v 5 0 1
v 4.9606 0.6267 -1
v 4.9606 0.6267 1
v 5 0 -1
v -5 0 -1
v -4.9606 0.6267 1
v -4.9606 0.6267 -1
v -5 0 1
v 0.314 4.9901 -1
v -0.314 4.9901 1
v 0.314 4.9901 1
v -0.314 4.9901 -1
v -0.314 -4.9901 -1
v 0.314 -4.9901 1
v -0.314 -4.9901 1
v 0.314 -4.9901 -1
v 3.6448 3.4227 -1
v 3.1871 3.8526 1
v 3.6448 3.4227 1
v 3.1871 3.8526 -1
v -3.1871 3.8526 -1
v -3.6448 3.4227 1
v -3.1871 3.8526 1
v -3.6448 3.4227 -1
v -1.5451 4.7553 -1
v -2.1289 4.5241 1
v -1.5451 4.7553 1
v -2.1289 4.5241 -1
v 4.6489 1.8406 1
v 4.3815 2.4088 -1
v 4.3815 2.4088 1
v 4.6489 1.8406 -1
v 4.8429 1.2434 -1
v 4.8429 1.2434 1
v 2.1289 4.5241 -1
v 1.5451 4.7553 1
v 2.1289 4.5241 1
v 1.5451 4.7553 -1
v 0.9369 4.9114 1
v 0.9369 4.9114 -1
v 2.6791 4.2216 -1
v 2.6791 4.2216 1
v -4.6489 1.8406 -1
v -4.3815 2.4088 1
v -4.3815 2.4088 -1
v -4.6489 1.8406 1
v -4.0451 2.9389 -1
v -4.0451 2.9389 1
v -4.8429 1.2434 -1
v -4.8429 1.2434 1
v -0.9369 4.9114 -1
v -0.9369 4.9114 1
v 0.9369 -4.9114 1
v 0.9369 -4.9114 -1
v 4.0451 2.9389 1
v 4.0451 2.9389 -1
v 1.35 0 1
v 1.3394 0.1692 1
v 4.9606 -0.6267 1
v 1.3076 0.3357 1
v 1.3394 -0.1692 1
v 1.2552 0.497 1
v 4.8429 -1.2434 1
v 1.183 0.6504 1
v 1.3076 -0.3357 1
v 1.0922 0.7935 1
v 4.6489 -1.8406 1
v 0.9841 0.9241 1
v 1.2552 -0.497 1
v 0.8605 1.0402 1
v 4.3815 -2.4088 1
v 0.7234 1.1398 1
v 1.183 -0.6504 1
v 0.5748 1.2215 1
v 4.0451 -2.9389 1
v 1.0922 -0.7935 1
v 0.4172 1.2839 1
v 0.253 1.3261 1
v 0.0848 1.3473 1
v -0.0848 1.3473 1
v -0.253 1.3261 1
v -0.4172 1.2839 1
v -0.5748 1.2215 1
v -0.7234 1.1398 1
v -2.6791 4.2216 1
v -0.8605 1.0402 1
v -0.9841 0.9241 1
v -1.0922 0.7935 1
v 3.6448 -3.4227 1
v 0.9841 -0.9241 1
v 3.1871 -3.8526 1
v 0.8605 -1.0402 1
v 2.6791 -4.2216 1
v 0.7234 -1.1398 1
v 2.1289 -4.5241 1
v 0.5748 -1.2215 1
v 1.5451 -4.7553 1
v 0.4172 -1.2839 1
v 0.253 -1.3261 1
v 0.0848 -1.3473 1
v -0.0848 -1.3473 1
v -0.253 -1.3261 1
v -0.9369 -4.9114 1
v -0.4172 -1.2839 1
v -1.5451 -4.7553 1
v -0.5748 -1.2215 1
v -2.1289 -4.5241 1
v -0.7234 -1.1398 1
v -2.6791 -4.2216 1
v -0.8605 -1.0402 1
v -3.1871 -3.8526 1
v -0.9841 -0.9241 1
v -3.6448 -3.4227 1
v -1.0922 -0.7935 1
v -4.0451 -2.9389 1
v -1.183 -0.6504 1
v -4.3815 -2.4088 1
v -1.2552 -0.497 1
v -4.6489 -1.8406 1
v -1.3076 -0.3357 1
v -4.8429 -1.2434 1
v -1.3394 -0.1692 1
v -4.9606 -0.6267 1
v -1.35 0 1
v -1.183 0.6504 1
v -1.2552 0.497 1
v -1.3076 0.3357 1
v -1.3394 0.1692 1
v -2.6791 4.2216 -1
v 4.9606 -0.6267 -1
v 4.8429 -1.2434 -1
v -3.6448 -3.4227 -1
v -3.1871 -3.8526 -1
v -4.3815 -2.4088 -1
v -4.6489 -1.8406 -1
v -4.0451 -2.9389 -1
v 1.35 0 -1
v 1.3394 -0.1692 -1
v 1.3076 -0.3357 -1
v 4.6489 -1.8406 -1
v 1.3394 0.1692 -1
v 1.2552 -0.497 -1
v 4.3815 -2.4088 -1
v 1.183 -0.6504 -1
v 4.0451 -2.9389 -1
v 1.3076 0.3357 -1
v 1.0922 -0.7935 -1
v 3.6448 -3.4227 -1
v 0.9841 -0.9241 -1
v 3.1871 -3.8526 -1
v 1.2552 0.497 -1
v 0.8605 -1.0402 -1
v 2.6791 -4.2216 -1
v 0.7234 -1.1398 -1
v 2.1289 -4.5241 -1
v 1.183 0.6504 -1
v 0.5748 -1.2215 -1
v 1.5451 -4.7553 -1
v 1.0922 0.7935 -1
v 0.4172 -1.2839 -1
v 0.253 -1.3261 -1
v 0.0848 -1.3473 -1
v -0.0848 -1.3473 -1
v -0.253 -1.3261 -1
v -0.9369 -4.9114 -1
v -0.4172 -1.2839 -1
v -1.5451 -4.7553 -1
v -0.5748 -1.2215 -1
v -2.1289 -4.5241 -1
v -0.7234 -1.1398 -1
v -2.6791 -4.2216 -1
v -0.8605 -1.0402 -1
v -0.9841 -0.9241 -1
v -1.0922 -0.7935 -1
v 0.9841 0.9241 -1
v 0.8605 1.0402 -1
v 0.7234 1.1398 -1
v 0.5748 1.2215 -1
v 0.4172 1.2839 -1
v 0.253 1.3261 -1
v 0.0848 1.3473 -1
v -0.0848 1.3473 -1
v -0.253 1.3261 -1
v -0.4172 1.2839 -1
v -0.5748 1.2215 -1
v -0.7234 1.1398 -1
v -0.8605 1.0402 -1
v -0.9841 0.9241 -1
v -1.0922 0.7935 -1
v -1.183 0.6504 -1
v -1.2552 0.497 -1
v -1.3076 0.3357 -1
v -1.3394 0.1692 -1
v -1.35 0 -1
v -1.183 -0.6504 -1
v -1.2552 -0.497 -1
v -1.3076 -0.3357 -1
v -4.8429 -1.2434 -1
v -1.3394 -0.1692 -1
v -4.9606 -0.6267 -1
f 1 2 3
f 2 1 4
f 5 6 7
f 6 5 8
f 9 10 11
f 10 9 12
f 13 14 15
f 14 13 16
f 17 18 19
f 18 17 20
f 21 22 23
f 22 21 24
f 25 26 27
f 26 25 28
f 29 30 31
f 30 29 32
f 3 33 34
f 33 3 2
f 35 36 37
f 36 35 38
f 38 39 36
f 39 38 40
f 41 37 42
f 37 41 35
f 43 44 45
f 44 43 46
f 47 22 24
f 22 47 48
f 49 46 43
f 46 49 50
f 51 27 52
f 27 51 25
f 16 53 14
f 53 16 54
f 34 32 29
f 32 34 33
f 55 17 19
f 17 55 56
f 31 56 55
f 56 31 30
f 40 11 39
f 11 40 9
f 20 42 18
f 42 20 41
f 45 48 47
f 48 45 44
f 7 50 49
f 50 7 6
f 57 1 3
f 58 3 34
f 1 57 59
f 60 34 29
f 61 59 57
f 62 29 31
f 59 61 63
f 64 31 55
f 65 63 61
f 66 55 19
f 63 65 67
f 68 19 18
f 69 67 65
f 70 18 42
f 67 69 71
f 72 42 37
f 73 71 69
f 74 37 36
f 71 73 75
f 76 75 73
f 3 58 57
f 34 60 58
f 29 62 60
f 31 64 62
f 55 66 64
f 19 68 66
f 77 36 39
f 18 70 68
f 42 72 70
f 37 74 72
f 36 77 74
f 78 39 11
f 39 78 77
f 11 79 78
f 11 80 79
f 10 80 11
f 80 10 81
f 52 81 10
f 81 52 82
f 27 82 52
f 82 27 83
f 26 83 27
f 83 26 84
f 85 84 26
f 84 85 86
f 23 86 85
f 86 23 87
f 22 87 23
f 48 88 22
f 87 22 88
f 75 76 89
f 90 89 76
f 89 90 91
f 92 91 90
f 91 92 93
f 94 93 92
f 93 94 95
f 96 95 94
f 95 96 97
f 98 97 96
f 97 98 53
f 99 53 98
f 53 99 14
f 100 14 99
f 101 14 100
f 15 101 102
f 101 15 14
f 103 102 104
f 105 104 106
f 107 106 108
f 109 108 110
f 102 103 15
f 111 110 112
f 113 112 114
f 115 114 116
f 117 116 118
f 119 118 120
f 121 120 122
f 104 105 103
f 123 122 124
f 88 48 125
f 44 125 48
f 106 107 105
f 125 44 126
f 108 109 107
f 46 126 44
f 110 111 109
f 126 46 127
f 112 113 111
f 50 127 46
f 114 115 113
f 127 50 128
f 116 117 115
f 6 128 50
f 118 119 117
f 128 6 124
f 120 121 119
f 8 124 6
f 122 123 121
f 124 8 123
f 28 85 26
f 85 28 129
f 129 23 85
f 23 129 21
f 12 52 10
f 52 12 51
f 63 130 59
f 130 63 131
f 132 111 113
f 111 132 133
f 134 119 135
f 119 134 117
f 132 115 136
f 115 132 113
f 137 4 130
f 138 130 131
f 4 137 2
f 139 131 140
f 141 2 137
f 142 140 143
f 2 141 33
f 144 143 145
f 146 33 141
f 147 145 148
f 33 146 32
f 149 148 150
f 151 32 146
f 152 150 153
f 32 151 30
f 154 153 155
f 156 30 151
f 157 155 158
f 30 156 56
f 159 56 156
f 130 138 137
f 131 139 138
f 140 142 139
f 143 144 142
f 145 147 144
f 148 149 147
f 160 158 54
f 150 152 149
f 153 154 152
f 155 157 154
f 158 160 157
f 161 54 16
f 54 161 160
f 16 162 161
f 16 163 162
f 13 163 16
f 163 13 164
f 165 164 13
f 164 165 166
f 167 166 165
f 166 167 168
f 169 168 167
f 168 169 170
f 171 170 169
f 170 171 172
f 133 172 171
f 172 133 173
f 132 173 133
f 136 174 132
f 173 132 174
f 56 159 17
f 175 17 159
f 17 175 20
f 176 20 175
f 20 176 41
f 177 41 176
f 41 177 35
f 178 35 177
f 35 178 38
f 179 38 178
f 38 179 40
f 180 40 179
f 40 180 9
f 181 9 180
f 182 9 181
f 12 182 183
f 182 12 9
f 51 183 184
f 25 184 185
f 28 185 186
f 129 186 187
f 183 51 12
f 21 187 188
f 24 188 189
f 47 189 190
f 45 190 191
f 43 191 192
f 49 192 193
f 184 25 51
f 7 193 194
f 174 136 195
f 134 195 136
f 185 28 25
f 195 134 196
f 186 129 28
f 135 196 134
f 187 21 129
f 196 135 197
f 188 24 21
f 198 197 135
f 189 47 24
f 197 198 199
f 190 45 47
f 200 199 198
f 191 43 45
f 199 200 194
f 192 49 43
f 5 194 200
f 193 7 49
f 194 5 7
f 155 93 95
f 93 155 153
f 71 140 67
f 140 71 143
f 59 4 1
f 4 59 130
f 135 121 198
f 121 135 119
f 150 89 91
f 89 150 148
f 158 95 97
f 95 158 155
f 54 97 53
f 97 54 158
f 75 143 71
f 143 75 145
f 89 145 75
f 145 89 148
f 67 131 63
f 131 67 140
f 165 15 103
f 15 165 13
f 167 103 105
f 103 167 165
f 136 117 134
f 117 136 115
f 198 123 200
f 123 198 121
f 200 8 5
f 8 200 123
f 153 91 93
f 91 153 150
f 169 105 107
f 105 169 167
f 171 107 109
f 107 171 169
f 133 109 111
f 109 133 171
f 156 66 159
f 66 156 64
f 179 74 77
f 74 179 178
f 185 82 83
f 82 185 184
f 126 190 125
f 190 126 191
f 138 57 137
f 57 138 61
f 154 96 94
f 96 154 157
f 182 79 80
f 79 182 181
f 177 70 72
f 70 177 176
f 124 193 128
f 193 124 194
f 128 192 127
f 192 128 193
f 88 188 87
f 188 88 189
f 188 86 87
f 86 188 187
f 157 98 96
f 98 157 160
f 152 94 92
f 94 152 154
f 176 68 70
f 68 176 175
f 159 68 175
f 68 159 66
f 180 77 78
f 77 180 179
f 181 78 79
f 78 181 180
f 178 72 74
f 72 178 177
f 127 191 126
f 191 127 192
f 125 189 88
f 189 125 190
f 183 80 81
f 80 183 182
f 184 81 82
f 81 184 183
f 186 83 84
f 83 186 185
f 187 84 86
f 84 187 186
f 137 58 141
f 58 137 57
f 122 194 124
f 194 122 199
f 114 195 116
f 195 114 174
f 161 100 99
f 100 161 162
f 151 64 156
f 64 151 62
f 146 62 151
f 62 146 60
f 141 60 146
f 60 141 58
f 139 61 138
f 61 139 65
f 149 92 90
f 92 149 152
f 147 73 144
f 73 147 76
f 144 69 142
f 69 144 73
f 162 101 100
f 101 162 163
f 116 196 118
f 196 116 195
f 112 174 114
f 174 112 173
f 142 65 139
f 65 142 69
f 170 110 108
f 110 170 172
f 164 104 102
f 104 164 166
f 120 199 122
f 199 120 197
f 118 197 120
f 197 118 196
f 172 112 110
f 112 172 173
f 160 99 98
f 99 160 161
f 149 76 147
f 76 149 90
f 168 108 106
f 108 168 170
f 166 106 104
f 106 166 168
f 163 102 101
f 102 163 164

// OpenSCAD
$fn = 50;


difference() {
	union() {
		translate(v = [0, 0, -1.0000000000]) {
			cylinder(h = 2, r = 5.0000000000);
		}
	}
	union() {
		translate(v = [0, 0, -100.0000000000]) {
			cylinder(h = 200, r = 1.3500000000);
		}
	}
}
